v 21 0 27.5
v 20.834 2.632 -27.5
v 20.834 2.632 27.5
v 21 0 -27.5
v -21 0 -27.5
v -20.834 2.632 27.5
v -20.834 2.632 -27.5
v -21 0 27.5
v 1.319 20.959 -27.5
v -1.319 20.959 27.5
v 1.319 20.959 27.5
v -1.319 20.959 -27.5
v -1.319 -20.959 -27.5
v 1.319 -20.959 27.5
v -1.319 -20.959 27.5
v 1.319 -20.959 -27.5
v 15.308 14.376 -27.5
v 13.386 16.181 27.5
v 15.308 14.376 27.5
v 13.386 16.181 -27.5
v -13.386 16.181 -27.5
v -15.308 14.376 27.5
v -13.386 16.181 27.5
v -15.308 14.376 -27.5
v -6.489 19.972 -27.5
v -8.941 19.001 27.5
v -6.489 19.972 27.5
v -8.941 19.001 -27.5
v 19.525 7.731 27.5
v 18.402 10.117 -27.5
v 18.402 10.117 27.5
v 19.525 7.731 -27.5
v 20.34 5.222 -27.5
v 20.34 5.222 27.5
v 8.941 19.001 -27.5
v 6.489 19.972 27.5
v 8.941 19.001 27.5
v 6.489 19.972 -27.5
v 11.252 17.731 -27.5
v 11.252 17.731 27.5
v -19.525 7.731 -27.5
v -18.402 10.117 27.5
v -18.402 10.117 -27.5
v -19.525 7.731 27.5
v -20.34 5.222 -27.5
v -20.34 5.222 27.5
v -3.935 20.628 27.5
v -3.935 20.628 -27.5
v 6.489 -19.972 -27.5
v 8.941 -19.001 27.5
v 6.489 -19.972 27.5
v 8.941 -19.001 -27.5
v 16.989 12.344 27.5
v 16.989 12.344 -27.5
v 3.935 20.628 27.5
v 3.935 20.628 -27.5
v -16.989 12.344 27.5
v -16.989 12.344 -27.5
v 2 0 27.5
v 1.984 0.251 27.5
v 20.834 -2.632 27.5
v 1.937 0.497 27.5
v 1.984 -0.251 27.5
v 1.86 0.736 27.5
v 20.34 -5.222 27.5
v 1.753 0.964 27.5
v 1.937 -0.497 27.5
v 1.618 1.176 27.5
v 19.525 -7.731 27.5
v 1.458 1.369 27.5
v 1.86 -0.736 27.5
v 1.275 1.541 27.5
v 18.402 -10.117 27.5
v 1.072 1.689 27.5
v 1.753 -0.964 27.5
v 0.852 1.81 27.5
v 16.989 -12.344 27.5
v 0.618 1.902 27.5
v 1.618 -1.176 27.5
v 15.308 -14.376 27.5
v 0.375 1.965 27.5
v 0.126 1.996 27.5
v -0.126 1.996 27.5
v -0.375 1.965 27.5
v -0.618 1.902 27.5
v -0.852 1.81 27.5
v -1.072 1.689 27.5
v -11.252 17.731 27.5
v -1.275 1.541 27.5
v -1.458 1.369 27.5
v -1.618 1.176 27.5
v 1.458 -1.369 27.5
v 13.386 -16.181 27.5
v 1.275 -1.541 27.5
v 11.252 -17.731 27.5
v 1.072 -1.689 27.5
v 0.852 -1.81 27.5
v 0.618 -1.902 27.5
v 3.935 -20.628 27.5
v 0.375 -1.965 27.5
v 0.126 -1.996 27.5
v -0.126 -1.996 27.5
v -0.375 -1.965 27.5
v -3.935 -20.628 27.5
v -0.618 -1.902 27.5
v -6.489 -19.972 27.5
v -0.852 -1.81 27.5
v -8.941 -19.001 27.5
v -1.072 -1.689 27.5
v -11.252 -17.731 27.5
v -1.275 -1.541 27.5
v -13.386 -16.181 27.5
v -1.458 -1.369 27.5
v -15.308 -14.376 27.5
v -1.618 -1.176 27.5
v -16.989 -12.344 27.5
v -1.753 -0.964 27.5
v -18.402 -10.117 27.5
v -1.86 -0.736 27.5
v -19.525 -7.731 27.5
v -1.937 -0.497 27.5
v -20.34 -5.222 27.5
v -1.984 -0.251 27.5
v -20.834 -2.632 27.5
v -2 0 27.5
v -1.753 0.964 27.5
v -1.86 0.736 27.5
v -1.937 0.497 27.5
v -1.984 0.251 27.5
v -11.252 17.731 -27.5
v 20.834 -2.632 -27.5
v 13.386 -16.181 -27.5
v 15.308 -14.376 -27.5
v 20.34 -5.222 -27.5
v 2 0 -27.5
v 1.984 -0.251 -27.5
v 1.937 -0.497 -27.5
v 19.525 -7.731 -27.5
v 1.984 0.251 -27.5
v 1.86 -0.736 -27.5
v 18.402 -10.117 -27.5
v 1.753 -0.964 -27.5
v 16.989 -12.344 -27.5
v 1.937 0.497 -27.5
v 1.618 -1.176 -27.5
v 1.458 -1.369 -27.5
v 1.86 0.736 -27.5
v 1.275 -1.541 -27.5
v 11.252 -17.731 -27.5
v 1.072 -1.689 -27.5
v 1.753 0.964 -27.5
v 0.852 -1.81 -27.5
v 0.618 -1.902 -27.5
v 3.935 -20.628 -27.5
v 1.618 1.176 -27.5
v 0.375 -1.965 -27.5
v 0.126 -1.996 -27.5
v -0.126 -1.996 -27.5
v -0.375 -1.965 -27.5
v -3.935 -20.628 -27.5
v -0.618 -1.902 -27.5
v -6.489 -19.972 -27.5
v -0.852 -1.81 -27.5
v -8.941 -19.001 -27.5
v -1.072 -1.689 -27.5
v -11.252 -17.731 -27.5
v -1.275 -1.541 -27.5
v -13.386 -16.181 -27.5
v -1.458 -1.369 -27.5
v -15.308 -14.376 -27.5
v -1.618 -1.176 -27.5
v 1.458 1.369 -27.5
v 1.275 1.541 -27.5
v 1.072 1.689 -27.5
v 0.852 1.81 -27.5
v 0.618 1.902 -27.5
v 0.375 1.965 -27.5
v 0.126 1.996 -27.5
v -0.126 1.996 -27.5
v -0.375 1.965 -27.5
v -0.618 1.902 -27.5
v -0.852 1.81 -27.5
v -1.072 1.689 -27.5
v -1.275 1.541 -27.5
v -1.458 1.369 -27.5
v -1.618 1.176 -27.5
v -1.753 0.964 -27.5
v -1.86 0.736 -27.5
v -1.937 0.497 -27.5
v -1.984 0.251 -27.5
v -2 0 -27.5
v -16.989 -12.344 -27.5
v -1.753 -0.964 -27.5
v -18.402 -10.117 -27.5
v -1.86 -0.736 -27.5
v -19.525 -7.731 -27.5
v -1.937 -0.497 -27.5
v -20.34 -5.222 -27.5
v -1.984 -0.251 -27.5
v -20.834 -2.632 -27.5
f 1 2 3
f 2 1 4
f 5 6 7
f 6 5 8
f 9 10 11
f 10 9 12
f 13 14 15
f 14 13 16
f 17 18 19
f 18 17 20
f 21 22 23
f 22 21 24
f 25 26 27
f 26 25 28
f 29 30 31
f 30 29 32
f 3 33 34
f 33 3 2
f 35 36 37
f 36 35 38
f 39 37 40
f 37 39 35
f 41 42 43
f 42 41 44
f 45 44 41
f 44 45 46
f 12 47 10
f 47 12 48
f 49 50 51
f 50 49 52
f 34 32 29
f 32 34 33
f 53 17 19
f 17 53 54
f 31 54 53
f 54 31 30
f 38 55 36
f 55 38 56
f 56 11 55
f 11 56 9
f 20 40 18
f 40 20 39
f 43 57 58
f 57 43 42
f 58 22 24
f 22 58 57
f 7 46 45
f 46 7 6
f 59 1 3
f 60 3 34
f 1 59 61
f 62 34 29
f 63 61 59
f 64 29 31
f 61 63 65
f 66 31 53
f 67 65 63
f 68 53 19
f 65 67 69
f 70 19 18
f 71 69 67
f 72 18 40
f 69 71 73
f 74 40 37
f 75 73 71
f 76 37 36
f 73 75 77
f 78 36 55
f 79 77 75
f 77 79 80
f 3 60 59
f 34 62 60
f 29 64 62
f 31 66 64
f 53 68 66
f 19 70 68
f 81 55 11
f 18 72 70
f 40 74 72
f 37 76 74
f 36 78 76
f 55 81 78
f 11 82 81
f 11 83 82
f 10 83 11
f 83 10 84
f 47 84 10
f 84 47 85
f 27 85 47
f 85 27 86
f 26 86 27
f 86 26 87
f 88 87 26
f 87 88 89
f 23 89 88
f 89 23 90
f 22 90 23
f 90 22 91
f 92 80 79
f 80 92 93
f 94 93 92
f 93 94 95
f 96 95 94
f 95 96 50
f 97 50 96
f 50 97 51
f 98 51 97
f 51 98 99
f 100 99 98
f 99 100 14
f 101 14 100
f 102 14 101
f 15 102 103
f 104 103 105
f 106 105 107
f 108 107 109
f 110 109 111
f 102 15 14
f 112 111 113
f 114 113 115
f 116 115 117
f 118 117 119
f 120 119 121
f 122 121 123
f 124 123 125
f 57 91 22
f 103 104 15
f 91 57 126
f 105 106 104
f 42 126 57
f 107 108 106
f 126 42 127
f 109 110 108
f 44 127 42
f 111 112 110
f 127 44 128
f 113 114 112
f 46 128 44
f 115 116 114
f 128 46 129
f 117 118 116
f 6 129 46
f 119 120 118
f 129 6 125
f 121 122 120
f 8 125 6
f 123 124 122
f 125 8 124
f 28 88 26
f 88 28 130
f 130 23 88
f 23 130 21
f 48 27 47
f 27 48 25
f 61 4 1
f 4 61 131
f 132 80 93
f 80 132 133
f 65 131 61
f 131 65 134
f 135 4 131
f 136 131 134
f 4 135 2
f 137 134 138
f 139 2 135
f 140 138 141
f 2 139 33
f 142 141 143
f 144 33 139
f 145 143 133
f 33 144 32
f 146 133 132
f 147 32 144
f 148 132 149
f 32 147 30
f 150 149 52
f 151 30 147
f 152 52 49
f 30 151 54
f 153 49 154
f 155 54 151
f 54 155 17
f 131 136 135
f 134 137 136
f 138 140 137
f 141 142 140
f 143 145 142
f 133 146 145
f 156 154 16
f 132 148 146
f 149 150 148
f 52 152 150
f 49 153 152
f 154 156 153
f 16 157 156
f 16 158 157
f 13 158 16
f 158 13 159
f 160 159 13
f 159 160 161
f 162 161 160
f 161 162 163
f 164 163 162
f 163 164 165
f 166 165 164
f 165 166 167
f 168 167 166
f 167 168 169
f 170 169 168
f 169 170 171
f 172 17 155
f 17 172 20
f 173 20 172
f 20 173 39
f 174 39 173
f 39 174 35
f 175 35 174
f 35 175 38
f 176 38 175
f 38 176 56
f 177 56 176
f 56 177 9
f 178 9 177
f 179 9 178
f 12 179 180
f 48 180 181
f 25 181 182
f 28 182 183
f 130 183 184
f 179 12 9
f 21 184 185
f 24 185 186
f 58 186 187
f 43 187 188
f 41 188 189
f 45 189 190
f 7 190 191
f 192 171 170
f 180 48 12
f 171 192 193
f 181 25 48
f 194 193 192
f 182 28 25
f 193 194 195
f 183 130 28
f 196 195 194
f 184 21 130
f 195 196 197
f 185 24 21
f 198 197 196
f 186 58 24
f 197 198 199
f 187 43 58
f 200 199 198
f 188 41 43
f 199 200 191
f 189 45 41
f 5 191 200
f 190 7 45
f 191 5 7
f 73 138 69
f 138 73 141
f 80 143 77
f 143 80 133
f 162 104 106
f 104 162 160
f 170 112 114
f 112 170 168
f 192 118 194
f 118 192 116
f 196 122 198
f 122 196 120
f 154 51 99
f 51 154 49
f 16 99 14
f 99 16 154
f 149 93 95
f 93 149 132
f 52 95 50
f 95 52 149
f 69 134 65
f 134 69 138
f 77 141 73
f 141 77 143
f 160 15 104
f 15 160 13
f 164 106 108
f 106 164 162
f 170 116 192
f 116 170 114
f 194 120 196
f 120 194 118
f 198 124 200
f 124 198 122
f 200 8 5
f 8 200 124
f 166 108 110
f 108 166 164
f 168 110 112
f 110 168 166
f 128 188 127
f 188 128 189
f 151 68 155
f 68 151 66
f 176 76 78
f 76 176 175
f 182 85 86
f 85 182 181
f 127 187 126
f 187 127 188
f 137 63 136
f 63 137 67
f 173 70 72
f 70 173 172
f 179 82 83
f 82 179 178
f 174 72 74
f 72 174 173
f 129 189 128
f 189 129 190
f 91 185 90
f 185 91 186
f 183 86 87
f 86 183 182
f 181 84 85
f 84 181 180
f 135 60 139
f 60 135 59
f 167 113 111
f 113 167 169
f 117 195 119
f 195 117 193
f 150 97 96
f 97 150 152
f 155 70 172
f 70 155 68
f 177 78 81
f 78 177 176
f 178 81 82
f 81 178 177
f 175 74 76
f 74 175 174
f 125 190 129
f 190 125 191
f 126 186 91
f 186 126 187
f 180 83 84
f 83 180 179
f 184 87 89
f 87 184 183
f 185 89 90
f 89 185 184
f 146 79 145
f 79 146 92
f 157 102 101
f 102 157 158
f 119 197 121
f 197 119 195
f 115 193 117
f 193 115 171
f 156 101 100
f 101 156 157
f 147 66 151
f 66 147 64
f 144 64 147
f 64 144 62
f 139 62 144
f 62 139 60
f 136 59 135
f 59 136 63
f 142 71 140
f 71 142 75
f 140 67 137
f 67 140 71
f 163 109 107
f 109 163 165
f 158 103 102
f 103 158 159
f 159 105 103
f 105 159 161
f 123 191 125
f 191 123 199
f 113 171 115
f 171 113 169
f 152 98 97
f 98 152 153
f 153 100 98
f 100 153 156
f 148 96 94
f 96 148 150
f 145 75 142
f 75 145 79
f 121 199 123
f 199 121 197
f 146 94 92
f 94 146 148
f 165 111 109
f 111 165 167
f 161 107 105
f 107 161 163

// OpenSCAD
$fn = 50;


difference() {
	union() {
		translate(v = [0, 0, -27.5000000000]) {
			cylinder(h = 55, r = 21.0000000000);
		}
	}
	union() {
		translate(v = [0, 0, -100.0000000000]) {
			cylinder(h = 200, r = 2);
		}
	}
}
